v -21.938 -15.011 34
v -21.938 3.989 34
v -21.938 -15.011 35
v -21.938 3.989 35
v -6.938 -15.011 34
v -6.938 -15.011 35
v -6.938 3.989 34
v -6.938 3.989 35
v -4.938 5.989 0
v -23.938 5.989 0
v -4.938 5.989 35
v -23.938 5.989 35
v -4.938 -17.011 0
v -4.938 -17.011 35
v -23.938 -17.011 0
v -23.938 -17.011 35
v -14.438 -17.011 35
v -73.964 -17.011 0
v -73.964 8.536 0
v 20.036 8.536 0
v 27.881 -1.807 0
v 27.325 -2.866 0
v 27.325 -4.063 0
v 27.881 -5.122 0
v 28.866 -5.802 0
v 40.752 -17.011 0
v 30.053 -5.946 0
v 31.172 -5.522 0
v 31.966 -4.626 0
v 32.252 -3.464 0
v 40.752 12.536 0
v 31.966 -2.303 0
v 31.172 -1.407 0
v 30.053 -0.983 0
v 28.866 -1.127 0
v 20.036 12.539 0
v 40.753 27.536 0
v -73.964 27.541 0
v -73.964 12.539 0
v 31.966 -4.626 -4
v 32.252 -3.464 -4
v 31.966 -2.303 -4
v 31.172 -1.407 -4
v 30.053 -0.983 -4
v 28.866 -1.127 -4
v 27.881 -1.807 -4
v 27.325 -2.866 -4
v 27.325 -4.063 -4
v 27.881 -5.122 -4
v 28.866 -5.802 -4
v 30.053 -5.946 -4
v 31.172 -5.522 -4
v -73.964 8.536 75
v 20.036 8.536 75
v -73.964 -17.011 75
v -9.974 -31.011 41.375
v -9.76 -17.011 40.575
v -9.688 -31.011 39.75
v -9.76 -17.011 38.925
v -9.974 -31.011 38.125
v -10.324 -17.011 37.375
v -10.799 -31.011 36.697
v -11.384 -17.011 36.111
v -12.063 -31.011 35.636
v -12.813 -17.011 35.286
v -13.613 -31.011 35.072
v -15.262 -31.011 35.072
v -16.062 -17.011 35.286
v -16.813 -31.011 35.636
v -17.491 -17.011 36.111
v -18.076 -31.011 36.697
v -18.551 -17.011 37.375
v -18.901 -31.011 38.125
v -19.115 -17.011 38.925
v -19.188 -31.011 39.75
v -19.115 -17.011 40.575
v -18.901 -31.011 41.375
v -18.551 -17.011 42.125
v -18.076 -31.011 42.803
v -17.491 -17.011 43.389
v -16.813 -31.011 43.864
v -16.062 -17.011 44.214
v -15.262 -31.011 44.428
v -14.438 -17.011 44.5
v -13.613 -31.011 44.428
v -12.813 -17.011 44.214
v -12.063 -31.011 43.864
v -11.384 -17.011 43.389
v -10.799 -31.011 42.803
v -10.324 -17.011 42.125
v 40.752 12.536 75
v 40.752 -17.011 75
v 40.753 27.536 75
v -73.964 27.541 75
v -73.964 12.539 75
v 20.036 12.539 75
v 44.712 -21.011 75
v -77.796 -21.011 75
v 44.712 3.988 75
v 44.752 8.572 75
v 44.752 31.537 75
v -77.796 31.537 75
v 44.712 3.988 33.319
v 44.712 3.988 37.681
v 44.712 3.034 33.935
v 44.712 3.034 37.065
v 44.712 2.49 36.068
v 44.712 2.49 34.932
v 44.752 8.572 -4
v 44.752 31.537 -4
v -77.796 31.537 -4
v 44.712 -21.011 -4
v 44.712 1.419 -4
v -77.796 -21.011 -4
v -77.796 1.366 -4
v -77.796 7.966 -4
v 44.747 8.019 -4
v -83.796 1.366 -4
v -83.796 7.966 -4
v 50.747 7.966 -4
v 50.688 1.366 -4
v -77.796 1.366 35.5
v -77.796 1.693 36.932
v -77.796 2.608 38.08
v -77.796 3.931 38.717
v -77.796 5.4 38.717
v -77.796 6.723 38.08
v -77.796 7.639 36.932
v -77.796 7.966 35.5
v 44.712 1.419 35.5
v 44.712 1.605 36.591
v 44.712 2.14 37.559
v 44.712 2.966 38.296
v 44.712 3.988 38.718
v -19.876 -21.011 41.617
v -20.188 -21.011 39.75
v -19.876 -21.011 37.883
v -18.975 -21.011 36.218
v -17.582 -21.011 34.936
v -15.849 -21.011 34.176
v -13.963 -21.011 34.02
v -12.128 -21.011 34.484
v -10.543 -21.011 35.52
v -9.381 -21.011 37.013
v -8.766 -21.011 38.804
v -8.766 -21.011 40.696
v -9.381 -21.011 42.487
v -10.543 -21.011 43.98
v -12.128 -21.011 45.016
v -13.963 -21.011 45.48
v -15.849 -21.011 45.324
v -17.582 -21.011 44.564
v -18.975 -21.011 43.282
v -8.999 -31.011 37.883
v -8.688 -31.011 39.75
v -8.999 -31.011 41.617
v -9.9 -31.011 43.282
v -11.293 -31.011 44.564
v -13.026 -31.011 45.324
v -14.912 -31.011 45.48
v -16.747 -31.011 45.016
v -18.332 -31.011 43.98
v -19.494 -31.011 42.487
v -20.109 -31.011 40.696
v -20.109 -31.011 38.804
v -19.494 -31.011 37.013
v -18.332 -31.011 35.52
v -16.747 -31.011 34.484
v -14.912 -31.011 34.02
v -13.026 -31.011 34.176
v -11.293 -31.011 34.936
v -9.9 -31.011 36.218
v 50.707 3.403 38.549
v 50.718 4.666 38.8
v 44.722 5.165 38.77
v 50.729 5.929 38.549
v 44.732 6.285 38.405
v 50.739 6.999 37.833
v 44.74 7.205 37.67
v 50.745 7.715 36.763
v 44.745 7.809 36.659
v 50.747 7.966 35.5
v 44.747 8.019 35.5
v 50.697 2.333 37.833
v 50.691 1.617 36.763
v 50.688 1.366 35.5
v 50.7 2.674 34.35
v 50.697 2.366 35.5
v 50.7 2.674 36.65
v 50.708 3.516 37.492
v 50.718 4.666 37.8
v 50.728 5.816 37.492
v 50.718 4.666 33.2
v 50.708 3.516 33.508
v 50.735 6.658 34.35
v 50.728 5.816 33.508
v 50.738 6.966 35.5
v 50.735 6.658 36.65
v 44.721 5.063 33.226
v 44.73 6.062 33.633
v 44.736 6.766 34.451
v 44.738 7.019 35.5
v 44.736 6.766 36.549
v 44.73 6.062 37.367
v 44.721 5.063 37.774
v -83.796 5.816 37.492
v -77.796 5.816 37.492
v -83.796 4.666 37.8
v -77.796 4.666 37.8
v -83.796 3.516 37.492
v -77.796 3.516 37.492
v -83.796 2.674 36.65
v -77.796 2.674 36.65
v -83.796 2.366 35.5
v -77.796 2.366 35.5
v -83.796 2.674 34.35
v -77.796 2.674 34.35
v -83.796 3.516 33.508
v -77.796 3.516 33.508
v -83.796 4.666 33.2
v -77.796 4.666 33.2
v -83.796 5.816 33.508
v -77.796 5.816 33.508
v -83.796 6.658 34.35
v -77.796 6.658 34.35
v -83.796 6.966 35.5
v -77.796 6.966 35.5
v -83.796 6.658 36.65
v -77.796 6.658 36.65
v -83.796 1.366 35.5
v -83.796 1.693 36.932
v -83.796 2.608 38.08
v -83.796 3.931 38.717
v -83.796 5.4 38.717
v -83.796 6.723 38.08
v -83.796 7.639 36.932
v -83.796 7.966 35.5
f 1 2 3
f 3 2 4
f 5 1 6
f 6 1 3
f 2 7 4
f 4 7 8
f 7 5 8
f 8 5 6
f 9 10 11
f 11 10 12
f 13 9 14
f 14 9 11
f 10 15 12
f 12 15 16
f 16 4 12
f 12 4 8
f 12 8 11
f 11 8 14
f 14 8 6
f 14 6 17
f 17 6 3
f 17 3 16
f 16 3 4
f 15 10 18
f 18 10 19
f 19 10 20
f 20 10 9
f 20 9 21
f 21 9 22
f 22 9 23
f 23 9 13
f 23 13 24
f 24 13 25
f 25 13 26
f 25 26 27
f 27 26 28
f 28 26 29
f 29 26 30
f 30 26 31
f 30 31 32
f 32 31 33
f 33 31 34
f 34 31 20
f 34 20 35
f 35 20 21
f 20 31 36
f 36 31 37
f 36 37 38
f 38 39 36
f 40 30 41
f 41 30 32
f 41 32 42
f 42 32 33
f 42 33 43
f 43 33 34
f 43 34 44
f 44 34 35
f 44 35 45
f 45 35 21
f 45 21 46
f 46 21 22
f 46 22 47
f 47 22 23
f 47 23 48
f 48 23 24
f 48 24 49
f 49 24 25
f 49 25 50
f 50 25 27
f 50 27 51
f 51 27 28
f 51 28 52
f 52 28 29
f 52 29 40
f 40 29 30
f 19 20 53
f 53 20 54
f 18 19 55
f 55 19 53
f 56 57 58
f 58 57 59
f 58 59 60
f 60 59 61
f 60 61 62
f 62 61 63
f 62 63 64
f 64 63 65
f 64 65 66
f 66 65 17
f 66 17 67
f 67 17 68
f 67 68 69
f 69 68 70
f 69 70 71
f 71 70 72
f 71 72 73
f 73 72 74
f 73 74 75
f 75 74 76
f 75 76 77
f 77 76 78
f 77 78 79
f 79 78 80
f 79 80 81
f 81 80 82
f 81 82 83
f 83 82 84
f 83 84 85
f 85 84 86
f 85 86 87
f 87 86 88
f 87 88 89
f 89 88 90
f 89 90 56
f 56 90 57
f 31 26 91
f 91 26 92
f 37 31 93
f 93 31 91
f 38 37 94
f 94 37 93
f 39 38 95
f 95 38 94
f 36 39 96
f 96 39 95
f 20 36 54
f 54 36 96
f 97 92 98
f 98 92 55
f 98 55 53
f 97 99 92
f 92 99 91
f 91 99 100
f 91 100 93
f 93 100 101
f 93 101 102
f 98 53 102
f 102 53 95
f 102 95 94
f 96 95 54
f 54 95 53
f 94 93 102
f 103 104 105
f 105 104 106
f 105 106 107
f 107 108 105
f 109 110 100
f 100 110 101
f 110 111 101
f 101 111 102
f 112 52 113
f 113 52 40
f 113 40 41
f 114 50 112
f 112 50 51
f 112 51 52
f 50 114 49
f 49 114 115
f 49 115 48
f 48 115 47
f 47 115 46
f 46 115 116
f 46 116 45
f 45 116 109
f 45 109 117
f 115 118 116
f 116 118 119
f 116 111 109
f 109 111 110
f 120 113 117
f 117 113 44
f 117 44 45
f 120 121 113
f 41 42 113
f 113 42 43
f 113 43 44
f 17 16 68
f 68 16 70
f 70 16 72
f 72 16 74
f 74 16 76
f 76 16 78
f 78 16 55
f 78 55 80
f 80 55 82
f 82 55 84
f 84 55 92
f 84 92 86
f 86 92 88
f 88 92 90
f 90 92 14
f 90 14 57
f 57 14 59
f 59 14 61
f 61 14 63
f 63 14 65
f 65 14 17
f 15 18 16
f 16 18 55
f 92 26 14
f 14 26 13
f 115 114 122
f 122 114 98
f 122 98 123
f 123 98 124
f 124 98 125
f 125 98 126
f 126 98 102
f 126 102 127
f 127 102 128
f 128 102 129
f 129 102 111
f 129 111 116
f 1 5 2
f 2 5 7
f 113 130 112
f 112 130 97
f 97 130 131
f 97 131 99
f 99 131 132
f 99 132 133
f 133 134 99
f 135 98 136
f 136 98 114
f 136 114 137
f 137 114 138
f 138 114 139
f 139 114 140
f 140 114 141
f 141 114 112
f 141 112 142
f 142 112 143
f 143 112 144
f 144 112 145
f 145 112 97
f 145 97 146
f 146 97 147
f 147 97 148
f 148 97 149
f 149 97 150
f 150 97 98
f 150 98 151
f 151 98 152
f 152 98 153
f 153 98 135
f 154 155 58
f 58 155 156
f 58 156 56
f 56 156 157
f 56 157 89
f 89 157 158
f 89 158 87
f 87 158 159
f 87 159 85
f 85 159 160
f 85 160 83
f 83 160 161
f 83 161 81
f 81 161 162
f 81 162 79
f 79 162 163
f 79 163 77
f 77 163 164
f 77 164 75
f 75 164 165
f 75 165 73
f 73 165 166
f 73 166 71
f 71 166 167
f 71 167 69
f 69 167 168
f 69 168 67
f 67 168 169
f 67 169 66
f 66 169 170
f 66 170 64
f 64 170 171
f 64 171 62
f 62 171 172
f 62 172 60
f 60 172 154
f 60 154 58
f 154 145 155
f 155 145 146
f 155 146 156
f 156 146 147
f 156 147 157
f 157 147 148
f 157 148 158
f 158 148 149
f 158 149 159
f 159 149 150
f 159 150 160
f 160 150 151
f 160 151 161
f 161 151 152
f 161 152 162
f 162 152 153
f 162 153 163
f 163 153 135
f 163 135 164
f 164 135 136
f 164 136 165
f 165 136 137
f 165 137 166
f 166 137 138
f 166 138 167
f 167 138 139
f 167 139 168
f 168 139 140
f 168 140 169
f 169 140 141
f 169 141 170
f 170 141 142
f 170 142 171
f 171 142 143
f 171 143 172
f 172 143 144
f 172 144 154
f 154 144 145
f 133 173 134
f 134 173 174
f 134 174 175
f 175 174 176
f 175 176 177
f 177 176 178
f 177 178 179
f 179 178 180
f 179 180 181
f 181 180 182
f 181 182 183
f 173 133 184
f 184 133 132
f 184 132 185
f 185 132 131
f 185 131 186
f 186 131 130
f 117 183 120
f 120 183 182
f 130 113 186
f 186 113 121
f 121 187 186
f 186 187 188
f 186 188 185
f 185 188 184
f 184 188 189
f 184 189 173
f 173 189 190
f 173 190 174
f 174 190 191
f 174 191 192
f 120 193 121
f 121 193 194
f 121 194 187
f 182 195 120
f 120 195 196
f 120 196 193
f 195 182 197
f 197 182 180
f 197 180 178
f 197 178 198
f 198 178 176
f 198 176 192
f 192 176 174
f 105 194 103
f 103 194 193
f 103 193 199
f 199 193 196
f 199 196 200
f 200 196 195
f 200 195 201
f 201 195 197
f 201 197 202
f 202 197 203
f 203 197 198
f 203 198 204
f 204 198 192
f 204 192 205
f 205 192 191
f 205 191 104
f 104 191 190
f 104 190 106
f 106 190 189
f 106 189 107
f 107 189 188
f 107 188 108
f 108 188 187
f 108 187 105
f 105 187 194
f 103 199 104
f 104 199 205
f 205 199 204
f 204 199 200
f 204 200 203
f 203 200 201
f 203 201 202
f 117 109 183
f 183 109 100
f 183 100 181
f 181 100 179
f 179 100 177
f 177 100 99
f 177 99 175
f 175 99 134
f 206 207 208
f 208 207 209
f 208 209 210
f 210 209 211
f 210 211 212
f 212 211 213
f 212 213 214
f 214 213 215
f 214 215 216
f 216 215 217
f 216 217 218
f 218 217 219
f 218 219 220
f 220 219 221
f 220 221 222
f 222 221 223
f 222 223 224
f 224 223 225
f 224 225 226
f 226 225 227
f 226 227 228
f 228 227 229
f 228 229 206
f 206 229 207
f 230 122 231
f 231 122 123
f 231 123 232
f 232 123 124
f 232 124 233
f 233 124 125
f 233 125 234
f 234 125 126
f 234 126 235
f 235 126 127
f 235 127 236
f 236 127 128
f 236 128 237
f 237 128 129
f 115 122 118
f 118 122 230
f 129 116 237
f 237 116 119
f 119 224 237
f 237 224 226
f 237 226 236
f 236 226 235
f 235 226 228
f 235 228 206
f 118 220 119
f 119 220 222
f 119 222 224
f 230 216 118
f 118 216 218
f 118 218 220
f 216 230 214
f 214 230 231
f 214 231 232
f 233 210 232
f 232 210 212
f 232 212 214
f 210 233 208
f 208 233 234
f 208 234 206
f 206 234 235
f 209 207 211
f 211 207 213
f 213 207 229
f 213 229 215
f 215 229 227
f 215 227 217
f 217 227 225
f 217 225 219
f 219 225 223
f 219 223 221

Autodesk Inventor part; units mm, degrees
ref_plane "YZ Plane" through (0, 0, 0) normal (1, 0, 0) x (0, 1, 0)
ref_plane "XZ Plane" through (0, 0, 0) normal (0, 1, 0) x (-1, 0, 0)
ref_plane "XY Plane" through (0, 0, 0) normal (0, 0, 1) x (1, 0, 0)
sketch "Sketch1" plane through (0, 0, 0) normal (0, 0, 1) x (1, 0, 0)
  line L0 (16.0355, 8.5355) -> (20.0355, 8.5355)
  line L1 (-73.9645, 8.5355) -> (16.0355, 8.5355)
  line L2 (20.0355, 8.5355) -> (-73.9645, 8.5355)
  line L3 (-73.9645, 27.5374) -> (-73.9645, 23.5355)
  line L4 (40.7522, 23.5355) -> (40.7524, 27.5)
  line L5 (20.0355, 8.5355) -> (20.0355, 12.5391)
  line L6 (40.7522, 12.5355) -> (40.7527, 27.5355)
  line L7 (-73.9639, 27.5391) -> (-73.9643, 12.5391)
  line L8 (-73.9636, 27.541) -> (40.7527, 27.5355)
  line L9 (-73.9643, 12.5391) -> (-73.9636, 27.541)
  line L10 (-77.7958, 27.5374) -> (-77.7958, 31.5374)
  line L11 (-77.7958, 31.5374) -> (-73.7958, 31.5374)
  line L12 (-73.7958, 31.5374) -> (40.9206, 31.5374)
  line L13 (40.9206, 31.5374) -> (44.7523, 31.5374)
  line L14 (44.7523, 27.5355) -> (44.7523, 31.5374)
  line L15 (-77.7958, 27.5374) -> (-77.7958, 8.5355)
  line L16 (-77.7958, 3.9889) -> (-77.7958, 8.5355)
  line L17 (44.7115, 3.9884) -> (44.7523, 8.5718)
  line L18 (-14.4375, 3.9889) -> (-21.9375, 3.9889)
  line L19 (-21.9375, 3.9889) -> (-6.9375, 3.9889)
  line L20 (-6.9375, 3.9889) -> (-6.9375, -15.0111)
  line L21 (-6.9375, -15.0111) -> (-21.9375, -15.0111)
  line L22 (-21.9375, -15.0111) -> (-21.9375, 3.9889)
  line L23 (-23.9375, -15.0111) -> (-23.9375, -17.0111)
  line L24 (-4.9375, -17.0111) -> (-4.9375, 5.9889)
  line L25 (-4.9375, 5.9889) -> (-23.9375, 5.9889)
  line L26 (-23.9375, 5.9889) -> (-23.9375, -17.0111)
  line L27 (-23.9375, -21.0111) -> (-77.7958, -21.0111)
  line L28 (-77.7958, -21.0111) -> (-77.7958, 3.9889)
  line L29 (-73.9645, 8.5355) -> (-73.9645, -17.0111)
  line L30 (-73.9645, -17.0111) -> (-23.9375, -17.0111)
  line L31 (-23.9375, -21.0111) -> (-4.9375, -21.0111)
  line L32 (-4.9375, -21.0111) -> (44.7115, -21.0111)
  line L33 (44.7115, -21.0111) -> (44.7115, 3.9884)
  line L34 (40.7522, 8.5355) -> (40.7522, -17.0111)
  line L35 (40.7522, -17.0111) -> (-4.9375, -17.0111)
  line L36 (-73.9643, 12.5391) -> (20.0355, 12.5391)
  line L37 (-73.9645, 8.5355) -> (20.0355, 8.5355)
  line L38 (40.7522, 12.5355) -> (40.7522, 8.5355)
  line L39 (44.7523, 27.5355) -> (44.7523, 8.5718)
  line L40 (-23.9375, -17.0111) -> (-4.9375, -17.0111)
  point P0 (0, 0)
  point P1 (-73.9645, 27.5355)
  point P2 (40.7521, 27.5)
extrude "Extrusion1" add sketch "Sketch1" against normal blind 4 contours L0 L5 L36 L7 L3 L9 L8 L6 L4 L38 L34 L35 L24 L25 L26 L23 L30 L29 L1 | L23 L26 L25 L24 L40 | L10 L11 L12 L13 L14 L39 L17 L33 L32 L31 L27 L28 L16 L15 | L19 L20 L21 L22 L18
extrude "Extrusion2" add sketch "Sketch1" along normal blind 75 contours L10 L11 L12 L13 L14 L39 L17 L33 L32 L31 L27 L28 L16 L15
sketch "Sketch3" plane through (0, 0, 0) normal (0, 0, 1) x (1, 0, 0)
  line L0 (-73.9645, -21.4645) -> (40.7521, -21.4645) projected
  line L1 (40.7521, -21.4645) -> (29.7521, -21.4645)
  line L2 (29.7521, -21.4645) -> (29.7521, -3.4645)
  line L3 (29.7521, -3.4645) -> (40.7521, -3.4645)
  line L4 (40.7521, -3.4645) -> (40.7521, -21.4645)
  circle A0 centre (29.7521, -3.4645) radius 2.5
  point P0 (0, 0)
  dimension "d44" = 11
  dimension "d45" = 18
  dimension "d46" = 5
extrude "Extrusion5" cut sketch "Sketch3" against normal blind 4 contours A0 L3 L2 | L2 L3 A0
extrude "Extrusion8" add sketch "Sketch1" along normal blind 35 contours L23 L26 L25 L24 L40
extrude "Extrusion9" add sketch "Sketch1" along normal blind 34 contours L19 L20 L21 L22 L18
sketch "Sketch6" plane through (-73.9645, -17.0111, 75) normal (0, 1, 0) x (1, 0, 0)
  line L0 (69.0269, 40) -> (50.0269, 40) projected
  line L1 (50.0269, 40) -> (69.0269, 40)
  line L2 (69.0269, 75) -> (69.0269, 40) projected
  circle A0 centre (59.5269, 35.25) radius 4.75
  circle A1 centre (59.5269, 35.25) radius 5.75
  point P0 (73.9645, 75)
  dimension "d71" = 11.5
extrude "Extrusion10" cut sketch "Sketch6" against normal blind 4 contours A0
extrude "Extrusion11" add sketch "Sketch6" against normal blind 14
sketch "Sketch7" plane through (44.7115, 3.9884, 75) normal (1, -0.0089, 0) x (0, 0, -1)
  line L0 (79, -26.0867) -> (0, -26.0867) projected
  line L1 (79, 26.4598) -> (79, 27.5484) projected
  line L2 (0, -26.0867) -> (79, -26.0867)
  line L3 (79, -26.0867) -> (79, 27.5484)
  line L4 (79, 27.5484) -> (0, 27.5484)
  line L5 (0, 27.5484) -> (0, -26.0867)
  line L6 (0, 0.7308) -> (79, 0.7308)
  line L7 (39.5, -26.0867) -> (39.5, 27.5484)
  circle A0 centre (39.5, 0.7308) radius 2.3
  circle A1 centre (39.5, 0.7308) radius 3.3
  line L8 (39.5, -2.5692) -> (79, -2.5692)
  line L9 (39.5, 4.0308) -> (79, 4.0308)
  point P0 (75, -4.3854)
  dimension "d76" = 4.6
  dimension "d77" = 6.6
extrude "Extrusion12" add sketch "Sketch7" along normal blind 6 contours L8 A1 L6 L3 | A1 L6 A0 L7 | L7 A0 L6 A1 | L6 A1 L9 L3 | L6 A0 L7 A1 | A1 L7 A0 L6
sketch "Sketch8" plane through (-77.7958, -21.0111, -4) normal (-1, 0, 0) x (0, 0, 1)
  line L0 (0, 0) -> (79, 0) projected
  line L1 (79, 52.5485) -> (0, 52.5485)
  line L2 (0, 52.5485) -> (0, 0)
  line L3 (0, 0) -> (79, 0)
  line L4 (79, 0) -> (79, 52.5485)
  line L5 (0, 52.5485) -> (79, 52.5485) projected
  line L6 (39.5, 52.5485) -> (39.5, 0)
  line L7 (42.7181, 24.9994) -> (79, 24.9994) projected
  line L8 (79, 24.9994) -> (0, 25.6769)
  line L9 (0, 22.3771) -> (0, 28.9768) projected
  circle A0 centre (39.5, 25.6768) radius 2.3
  ellipse E0 centre (39.5, 25.6769) end of major axis (41.8, 25.6769) minor radius 2.2999 projected
  circle A1 centre (39.5, 25.6768) radius 3.3
  line L10 (39.5, 28.9768) -> (0, 28.9768)
  line L11 (39.5, 22.3768) -> (0, 22.3771)
  point P0 (4, 21.0111)
  dimension "d80" = 6.6
extrude "Extrusion13" add sketch "Sketch8" along normal blind 6 contours L2 L8 A1 L11 | A1 L8 A0 L6 | L6 A0 L8 A1 | L2 L10 A1 L8 | A1 L6 A0 L8 | L8 A0 L6 A1
properties part number "Bakje sensor" material "ABS Plastic"
